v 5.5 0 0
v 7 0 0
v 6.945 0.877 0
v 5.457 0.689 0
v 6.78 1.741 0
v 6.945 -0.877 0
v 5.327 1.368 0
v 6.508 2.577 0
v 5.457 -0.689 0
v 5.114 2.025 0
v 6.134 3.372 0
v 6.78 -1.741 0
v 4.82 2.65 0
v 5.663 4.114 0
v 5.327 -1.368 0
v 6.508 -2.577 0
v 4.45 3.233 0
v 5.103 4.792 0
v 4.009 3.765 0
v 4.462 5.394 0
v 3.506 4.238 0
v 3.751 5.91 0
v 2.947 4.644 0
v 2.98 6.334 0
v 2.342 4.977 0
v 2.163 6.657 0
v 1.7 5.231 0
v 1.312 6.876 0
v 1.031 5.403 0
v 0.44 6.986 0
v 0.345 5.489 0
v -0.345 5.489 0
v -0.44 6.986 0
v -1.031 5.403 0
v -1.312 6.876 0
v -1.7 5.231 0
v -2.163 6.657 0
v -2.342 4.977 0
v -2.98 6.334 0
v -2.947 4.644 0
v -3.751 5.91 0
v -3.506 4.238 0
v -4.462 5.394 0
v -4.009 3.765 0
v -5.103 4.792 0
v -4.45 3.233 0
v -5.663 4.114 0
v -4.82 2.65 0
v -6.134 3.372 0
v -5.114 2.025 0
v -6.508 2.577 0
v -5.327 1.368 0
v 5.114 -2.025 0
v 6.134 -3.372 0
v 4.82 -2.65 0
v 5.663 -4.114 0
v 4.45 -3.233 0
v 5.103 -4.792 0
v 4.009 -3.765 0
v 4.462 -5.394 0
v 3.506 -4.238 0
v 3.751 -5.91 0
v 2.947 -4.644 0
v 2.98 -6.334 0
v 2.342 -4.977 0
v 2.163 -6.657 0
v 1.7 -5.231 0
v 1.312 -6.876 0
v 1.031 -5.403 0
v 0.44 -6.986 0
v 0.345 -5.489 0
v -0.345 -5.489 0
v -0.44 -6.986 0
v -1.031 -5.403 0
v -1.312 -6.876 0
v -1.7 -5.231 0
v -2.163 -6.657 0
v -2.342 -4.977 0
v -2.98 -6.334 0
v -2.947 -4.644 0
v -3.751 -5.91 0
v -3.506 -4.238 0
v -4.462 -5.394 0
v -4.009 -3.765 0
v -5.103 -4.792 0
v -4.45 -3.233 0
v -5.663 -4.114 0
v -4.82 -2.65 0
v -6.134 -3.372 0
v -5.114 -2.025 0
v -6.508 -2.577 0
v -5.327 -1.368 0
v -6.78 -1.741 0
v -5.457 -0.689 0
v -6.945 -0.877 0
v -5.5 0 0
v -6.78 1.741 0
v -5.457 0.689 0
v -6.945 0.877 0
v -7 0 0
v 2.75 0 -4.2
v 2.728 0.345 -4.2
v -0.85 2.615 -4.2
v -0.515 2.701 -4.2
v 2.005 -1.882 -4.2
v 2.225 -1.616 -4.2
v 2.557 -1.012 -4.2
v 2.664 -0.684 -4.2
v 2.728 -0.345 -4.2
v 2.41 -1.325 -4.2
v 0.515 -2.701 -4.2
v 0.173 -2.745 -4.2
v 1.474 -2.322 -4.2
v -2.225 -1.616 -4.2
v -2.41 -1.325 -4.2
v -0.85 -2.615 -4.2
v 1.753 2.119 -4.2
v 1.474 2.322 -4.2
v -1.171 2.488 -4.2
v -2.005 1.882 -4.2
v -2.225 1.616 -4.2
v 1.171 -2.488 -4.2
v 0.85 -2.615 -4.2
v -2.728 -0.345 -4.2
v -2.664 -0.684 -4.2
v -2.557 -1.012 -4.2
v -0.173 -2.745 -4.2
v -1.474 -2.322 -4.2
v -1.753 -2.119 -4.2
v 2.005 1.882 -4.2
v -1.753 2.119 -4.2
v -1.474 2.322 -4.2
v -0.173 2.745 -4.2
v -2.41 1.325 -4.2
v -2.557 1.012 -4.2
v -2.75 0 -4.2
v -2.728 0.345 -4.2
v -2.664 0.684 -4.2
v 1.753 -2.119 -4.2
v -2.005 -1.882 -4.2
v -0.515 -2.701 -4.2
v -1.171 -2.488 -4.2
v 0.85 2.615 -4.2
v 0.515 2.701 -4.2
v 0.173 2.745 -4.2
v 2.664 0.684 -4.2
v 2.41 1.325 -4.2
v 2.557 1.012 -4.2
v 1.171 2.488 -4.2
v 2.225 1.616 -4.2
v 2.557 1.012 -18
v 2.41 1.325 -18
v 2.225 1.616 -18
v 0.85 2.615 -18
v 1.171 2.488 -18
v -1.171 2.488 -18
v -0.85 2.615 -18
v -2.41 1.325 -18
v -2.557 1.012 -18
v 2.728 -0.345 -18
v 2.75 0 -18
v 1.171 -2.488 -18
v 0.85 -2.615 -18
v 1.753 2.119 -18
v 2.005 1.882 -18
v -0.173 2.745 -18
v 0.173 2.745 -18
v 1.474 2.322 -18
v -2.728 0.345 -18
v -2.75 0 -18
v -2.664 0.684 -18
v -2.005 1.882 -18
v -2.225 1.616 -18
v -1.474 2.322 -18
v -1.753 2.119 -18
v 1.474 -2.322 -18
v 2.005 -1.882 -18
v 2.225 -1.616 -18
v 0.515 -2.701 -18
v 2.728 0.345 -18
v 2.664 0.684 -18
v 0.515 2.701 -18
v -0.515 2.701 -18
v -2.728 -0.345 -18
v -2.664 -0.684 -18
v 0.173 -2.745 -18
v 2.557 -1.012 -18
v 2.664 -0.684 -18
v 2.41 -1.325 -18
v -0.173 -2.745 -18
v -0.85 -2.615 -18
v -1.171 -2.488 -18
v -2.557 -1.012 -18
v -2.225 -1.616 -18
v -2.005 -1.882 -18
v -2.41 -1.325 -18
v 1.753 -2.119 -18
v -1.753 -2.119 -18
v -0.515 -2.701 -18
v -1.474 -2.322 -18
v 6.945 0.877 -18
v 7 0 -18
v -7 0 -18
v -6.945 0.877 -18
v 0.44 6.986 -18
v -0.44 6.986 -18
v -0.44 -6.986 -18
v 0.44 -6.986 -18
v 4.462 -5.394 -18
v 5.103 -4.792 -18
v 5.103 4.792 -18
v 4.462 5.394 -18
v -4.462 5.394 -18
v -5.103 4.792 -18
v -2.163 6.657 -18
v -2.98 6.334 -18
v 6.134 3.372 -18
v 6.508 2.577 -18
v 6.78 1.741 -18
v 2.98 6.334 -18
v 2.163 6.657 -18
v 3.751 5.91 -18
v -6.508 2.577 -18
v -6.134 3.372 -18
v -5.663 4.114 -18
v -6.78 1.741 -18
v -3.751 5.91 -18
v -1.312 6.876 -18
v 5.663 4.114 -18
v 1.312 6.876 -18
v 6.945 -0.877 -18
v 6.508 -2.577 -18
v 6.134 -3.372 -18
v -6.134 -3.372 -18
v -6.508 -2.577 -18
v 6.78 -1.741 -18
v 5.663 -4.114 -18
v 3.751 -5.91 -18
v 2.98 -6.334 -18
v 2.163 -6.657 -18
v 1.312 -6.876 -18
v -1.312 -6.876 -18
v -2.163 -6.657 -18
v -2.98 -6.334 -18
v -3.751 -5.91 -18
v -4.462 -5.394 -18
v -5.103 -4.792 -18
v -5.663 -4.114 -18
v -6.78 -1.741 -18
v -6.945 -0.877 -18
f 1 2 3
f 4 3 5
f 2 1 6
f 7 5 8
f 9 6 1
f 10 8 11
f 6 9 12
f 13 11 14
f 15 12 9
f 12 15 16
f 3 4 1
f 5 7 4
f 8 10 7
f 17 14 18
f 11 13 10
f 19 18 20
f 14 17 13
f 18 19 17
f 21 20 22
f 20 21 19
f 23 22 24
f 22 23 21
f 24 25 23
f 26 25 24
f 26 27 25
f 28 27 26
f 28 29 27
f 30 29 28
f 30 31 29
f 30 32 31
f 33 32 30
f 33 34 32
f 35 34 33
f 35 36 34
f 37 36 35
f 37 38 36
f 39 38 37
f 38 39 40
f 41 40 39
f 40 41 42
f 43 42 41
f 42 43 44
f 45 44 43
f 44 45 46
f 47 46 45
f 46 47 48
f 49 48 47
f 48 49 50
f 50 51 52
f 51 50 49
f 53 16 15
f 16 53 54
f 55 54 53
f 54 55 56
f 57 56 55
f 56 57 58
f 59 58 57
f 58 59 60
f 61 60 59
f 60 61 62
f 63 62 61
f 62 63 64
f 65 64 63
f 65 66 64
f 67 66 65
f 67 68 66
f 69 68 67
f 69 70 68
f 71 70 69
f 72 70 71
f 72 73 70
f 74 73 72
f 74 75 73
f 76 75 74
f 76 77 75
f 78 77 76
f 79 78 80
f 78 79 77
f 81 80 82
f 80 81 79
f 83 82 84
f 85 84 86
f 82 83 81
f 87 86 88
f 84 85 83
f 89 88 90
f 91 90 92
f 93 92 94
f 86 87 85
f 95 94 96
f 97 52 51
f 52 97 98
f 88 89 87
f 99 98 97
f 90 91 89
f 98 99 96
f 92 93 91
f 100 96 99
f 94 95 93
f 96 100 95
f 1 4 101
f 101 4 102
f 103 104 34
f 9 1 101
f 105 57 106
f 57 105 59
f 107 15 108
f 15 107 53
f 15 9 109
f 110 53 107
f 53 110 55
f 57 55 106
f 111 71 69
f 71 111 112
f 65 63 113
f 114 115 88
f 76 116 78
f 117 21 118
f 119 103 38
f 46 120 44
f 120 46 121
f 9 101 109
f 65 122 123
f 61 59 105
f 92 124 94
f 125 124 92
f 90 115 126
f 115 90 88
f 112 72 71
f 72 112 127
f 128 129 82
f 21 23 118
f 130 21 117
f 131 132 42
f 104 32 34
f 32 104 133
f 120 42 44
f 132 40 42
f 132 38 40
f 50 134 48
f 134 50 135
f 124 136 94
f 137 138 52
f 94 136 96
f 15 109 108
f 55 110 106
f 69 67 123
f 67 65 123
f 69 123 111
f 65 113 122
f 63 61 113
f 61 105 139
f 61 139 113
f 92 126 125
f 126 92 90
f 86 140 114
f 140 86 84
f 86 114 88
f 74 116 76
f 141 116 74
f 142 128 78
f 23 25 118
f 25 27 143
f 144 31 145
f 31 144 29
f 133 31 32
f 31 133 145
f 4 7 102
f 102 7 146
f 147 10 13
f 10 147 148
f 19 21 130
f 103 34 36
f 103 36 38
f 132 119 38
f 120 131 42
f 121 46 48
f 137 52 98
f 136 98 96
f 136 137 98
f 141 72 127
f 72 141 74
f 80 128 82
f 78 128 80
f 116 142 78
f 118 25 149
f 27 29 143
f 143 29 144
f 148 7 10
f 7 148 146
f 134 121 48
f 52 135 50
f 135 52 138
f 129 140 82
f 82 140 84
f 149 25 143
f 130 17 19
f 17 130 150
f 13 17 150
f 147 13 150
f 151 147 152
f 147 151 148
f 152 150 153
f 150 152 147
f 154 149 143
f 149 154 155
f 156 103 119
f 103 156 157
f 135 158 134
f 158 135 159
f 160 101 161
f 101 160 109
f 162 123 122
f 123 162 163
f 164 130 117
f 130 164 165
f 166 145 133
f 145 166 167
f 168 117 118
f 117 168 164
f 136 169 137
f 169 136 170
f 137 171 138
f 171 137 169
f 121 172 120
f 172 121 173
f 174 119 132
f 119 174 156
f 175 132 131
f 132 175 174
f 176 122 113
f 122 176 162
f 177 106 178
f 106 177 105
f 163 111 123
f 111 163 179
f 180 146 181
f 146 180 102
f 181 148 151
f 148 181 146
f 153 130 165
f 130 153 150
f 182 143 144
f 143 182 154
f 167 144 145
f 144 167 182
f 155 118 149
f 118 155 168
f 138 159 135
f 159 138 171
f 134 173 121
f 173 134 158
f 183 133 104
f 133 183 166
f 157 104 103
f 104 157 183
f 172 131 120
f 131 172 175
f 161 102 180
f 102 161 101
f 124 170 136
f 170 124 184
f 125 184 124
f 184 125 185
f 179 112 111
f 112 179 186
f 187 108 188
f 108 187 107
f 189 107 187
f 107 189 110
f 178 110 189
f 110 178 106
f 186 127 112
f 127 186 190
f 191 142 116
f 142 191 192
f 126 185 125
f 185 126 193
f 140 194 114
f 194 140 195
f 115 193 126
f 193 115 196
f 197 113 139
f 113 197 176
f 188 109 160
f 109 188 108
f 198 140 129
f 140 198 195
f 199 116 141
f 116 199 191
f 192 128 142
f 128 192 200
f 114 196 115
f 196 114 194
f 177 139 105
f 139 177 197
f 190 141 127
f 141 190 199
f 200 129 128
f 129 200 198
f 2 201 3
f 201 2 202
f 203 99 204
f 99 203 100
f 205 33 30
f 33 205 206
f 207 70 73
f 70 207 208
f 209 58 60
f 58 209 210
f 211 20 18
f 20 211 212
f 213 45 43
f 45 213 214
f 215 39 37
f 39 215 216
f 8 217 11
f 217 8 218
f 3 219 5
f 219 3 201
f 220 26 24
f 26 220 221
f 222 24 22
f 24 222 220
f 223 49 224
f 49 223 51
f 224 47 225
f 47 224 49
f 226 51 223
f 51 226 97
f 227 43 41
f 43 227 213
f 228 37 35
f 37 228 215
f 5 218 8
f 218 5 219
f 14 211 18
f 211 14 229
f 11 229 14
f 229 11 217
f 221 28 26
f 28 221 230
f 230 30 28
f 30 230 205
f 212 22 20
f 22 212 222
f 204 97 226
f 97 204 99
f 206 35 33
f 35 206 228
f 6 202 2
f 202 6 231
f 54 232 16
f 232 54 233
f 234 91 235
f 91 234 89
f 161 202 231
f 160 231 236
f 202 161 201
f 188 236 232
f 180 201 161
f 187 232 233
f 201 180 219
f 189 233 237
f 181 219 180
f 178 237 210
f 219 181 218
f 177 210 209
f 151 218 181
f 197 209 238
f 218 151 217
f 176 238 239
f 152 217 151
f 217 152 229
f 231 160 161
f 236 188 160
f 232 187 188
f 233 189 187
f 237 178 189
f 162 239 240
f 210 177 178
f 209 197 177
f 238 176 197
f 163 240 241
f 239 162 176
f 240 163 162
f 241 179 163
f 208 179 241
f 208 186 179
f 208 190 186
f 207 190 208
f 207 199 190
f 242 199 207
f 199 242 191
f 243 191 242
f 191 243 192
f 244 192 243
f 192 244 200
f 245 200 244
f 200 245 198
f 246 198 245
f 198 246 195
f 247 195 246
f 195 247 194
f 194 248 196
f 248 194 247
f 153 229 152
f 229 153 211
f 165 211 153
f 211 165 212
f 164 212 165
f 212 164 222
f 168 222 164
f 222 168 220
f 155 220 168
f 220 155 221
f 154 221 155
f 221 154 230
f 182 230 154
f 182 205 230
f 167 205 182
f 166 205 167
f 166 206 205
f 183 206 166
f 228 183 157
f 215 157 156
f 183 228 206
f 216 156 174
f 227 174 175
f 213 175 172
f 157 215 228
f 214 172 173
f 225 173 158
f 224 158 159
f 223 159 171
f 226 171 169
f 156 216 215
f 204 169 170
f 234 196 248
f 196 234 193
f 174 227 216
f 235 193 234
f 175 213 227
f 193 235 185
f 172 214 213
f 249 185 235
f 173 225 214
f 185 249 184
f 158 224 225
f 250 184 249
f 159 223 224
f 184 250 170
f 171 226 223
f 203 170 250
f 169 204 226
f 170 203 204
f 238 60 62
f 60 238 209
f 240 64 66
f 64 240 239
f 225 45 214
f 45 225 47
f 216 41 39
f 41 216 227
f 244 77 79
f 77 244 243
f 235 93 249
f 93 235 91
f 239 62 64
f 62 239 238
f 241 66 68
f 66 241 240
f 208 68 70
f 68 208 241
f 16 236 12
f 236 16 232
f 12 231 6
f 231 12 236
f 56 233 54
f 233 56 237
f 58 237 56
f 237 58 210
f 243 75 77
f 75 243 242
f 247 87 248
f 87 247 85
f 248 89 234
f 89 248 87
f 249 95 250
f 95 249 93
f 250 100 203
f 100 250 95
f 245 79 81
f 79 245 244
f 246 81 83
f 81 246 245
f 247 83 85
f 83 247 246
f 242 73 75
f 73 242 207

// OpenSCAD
$fn = 50;

difference() {
	union() {
		translate(v = [0, 0, -18.0]) {
			cylinder(h = 18, r = 7.0);
		}
	}
	union() {
		translate(v = [0, 0, 0]) {
			rotate(a = [0, 0, 0]) {
				difference() {
					union() {
						translate(v = [0, 0, -21.0]) {
							cylinder(h = 21, r = 2.25);
						}
						translate(v = [0, 0, -4.2]) {
							cylinder(h = 4.2, r1 = 2.75, r2 = 5.5);
						}
						translate(v = [0, 0, -21.0]) {
							cylinder(h = 21, r = 2.75);
						}
						translate(v = [0, 0, -21.0]) {
							cylinder(h = 21, r = 2.25);
						}
					}
					union();
				}
			}
		}
	}
}
